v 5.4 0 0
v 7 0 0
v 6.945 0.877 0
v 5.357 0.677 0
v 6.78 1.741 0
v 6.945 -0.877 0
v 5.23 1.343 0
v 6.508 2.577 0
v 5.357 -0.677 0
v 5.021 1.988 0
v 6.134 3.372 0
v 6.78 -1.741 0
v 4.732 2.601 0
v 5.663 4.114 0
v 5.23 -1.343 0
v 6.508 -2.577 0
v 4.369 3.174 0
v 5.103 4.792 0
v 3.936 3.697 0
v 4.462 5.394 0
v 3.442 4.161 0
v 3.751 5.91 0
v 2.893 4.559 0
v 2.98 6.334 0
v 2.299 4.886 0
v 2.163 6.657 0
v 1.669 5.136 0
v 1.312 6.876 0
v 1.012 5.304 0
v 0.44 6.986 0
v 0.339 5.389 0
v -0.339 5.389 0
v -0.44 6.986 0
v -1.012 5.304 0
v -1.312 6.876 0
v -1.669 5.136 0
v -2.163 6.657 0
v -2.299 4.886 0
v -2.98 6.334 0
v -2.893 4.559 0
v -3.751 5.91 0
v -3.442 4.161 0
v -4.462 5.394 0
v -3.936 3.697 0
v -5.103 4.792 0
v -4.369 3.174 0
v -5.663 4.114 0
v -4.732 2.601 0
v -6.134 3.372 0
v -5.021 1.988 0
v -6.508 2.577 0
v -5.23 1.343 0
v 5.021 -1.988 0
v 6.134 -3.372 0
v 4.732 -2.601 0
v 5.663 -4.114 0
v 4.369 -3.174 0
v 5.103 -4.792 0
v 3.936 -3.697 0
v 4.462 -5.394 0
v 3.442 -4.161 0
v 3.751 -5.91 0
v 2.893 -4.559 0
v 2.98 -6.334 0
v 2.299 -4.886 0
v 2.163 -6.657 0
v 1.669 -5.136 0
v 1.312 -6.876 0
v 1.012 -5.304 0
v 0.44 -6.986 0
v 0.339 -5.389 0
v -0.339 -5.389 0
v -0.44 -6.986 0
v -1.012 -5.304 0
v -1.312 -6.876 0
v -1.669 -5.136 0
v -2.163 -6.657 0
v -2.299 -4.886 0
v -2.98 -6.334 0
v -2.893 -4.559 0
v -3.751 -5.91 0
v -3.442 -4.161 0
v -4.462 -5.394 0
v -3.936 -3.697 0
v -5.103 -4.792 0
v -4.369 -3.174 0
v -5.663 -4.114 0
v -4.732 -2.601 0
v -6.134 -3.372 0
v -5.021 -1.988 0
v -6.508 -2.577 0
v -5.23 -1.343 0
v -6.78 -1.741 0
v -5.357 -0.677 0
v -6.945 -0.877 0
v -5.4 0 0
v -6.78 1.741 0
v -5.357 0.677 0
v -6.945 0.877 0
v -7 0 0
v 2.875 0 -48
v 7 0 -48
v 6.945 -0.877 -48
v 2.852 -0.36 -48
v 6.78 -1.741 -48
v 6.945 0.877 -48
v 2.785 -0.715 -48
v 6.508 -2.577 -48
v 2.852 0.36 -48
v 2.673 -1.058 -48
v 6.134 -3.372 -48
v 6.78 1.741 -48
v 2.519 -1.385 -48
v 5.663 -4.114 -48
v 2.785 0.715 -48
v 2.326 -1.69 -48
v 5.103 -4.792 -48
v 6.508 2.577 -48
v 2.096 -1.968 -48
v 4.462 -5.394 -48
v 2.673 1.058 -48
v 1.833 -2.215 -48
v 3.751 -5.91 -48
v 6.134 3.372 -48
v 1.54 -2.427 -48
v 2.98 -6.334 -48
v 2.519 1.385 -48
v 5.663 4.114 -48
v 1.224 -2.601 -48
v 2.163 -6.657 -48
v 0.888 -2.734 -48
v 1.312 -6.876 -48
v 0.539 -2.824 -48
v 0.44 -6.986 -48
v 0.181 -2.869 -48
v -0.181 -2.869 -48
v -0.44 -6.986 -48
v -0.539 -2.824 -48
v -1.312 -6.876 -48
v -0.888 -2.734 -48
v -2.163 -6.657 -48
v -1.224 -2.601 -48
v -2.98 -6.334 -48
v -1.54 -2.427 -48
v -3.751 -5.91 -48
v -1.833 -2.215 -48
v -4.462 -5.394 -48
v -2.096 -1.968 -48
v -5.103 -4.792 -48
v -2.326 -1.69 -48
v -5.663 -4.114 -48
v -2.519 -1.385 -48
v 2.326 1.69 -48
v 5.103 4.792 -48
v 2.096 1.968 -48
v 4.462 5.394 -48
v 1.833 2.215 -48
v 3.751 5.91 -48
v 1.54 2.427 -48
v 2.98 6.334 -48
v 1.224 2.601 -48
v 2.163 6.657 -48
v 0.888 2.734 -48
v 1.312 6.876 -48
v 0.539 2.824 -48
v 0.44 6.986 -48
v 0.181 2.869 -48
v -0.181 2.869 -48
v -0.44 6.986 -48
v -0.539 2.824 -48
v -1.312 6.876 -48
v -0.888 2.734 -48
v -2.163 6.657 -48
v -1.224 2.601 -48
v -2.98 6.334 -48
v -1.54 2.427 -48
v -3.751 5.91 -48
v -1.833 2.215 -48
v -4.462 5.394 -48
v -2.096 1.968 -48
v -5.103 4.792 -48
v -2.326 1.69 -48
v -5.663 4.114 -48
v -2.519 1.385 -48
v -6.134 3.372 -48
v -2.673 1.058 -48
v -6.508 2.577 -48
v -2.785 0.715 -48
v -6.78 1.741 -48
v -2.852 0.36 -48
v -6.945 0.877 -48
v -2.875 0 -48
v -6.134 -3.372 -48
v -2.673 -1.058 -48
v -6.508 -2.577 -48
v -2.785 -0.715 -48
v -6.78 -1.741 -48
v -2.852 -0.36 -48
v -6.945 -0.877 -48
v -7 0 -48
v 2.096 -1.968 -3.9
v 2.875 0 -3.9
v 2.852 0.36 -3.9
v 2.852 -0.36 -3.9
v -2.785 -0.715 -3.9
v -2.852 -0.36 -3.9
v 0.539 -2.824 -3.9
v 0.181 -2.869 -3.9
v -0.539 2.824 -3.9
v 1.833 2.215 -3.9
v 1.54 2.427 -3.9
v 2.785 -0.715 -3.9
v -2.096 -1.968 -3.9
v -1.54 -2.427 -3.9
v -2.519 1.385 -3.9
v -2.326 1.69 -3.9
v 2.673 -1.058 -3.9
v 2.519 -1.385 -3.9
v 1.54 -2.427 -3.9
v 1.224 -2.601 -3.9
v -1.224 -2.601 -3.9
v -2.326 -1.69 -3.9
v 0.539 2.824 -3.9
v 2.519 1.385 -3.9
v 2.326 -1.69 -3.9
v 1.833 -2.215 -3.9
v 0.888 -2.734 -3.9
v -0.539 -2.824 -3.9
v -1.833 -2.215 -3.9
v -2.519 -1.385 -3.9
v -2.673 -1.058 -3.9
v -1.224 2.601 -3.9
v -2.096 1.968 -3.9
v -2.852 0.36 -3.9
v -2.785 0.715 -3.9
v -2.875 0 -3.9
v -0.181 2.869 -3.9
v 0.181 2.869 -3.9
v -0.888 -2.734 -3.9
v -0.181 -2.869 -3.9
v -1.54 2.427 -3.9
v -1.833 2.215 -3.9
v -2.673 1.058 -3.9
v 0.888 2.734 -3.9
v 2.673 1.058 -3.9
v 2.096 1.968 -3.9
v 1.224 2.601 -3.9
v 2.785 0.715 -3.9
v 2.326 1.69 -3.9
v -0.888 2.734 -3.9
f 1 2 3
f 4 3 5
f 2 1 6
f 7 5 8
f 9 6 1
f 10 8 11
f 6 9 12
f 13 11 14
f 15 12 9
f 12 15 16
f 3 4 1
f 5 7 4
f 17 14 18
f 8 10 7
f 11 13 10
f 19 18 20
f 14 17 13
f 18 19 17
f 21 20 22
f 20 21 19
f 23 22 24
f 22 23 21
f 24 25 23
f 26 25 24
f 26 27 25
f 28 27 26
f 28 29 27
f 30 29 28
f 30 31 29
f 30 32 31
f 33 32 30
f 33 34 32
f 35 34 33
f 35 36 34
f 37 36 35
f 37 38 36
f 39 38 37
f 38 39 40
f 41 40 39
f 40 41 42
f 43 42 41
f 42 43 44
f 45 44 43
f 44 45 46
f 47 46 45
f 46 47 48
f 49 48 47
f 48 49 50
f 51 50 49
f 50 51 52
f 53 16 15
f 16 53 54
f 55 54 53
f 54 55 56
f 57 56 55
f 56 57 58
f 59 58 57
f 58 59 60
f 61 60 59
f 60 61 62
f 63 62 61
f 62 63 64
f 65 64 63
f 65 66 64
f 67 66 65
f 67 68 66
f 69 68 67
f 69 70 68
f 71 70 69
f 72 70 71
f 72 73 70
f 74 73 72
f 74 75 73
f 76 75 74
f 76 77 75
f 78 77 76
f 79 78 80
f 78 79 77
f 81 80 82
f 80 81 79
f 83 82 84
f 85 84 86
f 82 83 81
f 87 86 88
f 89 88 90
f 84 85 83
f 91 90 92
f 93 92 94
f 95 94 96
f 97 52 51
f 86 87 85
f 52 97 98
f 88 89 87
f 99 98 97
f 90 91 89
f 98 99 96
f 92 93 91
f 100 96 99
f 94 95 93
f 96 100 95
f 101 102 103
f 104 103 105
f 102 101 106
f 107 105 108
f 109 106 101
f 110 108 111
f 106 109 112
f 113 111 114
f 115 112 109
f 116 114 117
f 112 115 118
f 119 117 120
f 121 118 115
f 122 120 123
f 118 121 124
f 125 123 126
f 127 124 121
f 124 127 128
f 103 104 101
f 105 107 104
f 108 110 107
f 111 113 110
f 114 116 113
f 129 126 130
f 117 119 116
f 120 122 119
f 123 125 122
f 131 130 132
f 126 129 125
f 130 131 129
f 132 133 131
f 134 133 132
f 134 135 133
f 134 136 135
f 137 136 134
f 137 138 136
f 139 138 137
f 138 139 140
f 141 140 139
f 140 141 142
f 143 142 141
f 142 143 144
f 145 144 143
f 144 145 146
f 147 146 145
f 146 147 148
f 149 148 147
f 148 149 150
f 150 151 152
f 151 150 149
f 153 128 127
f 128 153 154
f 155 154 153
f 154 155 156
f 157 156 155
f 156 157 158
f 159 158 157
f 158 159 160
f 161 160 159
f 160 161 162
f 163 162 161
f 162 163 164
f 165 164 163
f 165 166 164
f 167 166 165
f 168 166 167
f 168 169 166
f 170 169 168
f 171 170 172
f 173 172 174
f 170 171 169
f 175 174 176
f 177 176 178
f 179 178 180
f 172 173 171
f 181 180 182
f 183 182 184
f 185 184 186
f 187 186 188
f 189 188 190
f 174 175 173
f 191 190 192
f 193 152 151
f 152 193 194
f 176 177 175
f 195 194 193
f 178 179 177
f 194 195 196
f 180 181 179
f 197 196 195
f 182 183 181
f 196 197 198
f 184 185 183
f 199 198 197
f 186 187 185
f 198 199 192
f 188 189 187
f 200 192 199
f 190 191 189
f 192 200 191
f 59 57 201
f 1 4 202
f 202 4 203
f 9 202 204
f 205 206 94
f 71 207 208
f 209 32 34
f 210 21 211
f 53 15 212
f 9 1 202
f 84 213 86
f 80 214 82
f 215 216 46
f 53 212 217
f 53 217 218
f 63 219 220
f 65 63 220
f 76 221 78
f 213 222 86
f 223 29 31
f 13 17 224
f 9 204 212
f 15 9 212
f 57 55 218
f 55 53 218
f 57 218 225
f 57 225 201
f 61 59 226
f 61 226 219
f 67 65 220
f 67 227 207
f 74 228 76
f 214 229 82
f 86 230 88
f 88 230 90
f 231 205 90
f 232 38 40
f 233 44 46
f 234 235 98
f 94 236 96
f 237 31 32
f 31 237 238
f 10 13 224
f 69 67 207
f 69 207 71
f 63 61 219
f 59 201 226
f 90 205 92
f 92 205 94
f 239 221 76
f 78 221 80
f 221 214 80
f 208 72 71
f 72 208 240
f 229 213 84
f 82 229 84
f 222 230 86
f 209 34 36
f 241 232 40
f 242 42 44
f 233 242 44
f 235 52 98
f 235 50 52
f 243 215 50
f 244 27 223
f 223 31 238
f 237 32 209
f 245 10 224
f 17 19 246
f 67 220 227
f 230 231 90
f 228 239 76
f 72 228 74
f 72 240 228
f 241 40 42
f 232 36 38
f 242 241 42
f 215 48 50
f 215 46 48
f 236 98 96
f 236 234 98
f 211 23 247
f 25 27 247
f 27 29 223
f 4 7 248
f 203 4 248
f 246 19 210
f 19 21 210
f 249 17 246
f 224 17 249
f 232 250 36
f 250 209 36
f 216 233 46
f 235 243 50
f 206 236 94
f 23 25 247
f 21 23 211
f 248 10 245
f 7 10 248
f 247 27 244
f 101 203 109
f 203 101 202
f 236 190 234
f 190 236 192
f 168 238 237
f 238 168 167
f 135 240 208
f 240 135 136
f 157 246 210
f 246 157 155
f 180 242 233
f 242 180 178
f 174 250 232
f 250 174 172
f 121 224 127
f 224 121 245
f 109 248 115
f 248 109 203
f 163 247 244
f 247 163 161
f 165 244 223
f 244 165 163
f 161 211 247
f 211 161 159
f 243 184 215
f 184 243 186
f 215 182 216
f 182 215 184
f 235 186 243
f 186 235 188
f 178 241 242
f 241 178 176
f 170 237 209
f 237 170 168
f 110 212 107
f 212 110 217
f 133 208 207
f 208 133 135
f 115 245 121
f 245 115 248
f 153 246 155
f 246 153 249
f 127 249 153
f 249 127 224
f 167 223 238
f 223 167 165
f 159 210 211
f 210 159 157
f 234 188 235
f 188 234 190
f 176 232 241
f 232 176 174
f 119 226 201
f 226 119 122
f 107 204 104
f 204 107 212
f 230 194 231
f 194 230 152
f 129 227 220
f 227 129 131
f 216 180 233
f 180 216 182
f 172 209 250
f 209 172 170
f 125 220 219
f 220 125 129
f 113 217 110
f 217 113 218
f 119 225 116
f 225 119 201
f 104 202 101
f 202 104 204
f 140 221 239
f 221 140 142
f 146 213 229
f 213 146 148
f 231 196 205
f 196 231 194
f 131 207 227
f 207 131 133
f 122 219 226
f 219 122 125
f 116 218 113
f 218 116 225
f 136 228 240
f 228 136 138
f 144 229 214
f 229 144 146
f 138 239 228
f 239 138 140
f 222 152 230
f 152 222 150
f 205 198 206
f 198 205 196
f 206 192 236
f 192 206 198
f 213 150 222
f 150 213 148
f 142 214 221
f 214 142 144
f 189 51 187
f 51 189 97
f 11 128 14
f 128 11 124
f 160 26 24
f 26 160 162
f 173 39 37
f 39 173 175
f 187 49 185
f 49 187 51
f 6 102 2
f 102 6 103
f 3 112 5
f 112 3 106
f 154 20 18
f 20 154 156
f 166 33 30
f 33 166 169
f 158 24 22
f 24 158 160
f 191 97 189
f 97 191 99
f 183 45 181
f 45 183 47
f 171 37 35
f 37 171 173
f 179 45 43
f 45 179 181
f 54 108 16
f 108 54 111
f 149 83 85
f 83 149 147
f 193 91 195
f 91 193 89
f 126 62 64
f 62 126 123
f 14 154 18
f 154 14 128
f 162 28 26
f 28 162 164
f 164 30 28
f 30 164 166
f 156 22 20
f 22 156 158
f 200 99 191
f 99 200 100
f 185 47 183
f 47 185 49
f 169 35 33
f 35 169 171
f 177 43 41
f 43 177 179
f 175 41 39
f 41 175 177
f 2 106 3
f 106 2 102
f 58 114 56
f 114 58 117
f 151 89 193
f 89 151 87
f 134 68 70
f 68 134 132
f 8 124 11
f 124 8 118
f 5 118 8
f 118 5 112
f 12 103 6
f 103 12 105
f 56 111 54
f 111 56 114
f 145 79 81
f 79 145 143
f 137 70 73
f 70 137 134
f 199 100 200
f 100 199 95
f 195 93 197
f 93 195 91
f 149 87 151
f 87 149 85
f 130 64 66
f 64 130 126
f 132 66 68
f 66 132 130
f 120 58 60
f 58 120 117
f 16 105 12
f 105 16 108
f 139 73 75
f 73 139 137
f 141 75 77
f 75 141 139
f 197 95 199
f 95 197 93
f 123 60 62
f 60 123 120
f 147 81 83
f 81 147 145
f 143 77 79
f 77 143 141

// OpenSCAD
$fn = 50;


difference() {
	union() {
		translate(v = [0, 0, -48.0000000000]) {
			cylinder(h = 48, r = 7.0000000000);
		}
	}
	union() {
		translate(v = [0, 0, 0]) {
			rotate(a = [0, 0, 0]) {
				difference() {
					union() {
						#translate(v = [0, 0, -48.0000000000]) {
							cylinder(h = 48, r = 2.6000000000);
						}
						#translate(v = [0, 0, -3.9000000000]) {
							cylinder(h = 3.9000000000, r = 7.0000000000, r1 = 2.8750000000, r2 = 5.4000000000);
						}
						#translate(v = [0, 0, -48.0000000000]) {
							cylinder(h = 48, r = 2.8750000000);
						}
						#translate(v = [0, 0, -48.0000000000]) {
							cylinder(h = 48, r = 2.6000000000);
						}
					}
					union();
				}
			}
		}
	}
}
